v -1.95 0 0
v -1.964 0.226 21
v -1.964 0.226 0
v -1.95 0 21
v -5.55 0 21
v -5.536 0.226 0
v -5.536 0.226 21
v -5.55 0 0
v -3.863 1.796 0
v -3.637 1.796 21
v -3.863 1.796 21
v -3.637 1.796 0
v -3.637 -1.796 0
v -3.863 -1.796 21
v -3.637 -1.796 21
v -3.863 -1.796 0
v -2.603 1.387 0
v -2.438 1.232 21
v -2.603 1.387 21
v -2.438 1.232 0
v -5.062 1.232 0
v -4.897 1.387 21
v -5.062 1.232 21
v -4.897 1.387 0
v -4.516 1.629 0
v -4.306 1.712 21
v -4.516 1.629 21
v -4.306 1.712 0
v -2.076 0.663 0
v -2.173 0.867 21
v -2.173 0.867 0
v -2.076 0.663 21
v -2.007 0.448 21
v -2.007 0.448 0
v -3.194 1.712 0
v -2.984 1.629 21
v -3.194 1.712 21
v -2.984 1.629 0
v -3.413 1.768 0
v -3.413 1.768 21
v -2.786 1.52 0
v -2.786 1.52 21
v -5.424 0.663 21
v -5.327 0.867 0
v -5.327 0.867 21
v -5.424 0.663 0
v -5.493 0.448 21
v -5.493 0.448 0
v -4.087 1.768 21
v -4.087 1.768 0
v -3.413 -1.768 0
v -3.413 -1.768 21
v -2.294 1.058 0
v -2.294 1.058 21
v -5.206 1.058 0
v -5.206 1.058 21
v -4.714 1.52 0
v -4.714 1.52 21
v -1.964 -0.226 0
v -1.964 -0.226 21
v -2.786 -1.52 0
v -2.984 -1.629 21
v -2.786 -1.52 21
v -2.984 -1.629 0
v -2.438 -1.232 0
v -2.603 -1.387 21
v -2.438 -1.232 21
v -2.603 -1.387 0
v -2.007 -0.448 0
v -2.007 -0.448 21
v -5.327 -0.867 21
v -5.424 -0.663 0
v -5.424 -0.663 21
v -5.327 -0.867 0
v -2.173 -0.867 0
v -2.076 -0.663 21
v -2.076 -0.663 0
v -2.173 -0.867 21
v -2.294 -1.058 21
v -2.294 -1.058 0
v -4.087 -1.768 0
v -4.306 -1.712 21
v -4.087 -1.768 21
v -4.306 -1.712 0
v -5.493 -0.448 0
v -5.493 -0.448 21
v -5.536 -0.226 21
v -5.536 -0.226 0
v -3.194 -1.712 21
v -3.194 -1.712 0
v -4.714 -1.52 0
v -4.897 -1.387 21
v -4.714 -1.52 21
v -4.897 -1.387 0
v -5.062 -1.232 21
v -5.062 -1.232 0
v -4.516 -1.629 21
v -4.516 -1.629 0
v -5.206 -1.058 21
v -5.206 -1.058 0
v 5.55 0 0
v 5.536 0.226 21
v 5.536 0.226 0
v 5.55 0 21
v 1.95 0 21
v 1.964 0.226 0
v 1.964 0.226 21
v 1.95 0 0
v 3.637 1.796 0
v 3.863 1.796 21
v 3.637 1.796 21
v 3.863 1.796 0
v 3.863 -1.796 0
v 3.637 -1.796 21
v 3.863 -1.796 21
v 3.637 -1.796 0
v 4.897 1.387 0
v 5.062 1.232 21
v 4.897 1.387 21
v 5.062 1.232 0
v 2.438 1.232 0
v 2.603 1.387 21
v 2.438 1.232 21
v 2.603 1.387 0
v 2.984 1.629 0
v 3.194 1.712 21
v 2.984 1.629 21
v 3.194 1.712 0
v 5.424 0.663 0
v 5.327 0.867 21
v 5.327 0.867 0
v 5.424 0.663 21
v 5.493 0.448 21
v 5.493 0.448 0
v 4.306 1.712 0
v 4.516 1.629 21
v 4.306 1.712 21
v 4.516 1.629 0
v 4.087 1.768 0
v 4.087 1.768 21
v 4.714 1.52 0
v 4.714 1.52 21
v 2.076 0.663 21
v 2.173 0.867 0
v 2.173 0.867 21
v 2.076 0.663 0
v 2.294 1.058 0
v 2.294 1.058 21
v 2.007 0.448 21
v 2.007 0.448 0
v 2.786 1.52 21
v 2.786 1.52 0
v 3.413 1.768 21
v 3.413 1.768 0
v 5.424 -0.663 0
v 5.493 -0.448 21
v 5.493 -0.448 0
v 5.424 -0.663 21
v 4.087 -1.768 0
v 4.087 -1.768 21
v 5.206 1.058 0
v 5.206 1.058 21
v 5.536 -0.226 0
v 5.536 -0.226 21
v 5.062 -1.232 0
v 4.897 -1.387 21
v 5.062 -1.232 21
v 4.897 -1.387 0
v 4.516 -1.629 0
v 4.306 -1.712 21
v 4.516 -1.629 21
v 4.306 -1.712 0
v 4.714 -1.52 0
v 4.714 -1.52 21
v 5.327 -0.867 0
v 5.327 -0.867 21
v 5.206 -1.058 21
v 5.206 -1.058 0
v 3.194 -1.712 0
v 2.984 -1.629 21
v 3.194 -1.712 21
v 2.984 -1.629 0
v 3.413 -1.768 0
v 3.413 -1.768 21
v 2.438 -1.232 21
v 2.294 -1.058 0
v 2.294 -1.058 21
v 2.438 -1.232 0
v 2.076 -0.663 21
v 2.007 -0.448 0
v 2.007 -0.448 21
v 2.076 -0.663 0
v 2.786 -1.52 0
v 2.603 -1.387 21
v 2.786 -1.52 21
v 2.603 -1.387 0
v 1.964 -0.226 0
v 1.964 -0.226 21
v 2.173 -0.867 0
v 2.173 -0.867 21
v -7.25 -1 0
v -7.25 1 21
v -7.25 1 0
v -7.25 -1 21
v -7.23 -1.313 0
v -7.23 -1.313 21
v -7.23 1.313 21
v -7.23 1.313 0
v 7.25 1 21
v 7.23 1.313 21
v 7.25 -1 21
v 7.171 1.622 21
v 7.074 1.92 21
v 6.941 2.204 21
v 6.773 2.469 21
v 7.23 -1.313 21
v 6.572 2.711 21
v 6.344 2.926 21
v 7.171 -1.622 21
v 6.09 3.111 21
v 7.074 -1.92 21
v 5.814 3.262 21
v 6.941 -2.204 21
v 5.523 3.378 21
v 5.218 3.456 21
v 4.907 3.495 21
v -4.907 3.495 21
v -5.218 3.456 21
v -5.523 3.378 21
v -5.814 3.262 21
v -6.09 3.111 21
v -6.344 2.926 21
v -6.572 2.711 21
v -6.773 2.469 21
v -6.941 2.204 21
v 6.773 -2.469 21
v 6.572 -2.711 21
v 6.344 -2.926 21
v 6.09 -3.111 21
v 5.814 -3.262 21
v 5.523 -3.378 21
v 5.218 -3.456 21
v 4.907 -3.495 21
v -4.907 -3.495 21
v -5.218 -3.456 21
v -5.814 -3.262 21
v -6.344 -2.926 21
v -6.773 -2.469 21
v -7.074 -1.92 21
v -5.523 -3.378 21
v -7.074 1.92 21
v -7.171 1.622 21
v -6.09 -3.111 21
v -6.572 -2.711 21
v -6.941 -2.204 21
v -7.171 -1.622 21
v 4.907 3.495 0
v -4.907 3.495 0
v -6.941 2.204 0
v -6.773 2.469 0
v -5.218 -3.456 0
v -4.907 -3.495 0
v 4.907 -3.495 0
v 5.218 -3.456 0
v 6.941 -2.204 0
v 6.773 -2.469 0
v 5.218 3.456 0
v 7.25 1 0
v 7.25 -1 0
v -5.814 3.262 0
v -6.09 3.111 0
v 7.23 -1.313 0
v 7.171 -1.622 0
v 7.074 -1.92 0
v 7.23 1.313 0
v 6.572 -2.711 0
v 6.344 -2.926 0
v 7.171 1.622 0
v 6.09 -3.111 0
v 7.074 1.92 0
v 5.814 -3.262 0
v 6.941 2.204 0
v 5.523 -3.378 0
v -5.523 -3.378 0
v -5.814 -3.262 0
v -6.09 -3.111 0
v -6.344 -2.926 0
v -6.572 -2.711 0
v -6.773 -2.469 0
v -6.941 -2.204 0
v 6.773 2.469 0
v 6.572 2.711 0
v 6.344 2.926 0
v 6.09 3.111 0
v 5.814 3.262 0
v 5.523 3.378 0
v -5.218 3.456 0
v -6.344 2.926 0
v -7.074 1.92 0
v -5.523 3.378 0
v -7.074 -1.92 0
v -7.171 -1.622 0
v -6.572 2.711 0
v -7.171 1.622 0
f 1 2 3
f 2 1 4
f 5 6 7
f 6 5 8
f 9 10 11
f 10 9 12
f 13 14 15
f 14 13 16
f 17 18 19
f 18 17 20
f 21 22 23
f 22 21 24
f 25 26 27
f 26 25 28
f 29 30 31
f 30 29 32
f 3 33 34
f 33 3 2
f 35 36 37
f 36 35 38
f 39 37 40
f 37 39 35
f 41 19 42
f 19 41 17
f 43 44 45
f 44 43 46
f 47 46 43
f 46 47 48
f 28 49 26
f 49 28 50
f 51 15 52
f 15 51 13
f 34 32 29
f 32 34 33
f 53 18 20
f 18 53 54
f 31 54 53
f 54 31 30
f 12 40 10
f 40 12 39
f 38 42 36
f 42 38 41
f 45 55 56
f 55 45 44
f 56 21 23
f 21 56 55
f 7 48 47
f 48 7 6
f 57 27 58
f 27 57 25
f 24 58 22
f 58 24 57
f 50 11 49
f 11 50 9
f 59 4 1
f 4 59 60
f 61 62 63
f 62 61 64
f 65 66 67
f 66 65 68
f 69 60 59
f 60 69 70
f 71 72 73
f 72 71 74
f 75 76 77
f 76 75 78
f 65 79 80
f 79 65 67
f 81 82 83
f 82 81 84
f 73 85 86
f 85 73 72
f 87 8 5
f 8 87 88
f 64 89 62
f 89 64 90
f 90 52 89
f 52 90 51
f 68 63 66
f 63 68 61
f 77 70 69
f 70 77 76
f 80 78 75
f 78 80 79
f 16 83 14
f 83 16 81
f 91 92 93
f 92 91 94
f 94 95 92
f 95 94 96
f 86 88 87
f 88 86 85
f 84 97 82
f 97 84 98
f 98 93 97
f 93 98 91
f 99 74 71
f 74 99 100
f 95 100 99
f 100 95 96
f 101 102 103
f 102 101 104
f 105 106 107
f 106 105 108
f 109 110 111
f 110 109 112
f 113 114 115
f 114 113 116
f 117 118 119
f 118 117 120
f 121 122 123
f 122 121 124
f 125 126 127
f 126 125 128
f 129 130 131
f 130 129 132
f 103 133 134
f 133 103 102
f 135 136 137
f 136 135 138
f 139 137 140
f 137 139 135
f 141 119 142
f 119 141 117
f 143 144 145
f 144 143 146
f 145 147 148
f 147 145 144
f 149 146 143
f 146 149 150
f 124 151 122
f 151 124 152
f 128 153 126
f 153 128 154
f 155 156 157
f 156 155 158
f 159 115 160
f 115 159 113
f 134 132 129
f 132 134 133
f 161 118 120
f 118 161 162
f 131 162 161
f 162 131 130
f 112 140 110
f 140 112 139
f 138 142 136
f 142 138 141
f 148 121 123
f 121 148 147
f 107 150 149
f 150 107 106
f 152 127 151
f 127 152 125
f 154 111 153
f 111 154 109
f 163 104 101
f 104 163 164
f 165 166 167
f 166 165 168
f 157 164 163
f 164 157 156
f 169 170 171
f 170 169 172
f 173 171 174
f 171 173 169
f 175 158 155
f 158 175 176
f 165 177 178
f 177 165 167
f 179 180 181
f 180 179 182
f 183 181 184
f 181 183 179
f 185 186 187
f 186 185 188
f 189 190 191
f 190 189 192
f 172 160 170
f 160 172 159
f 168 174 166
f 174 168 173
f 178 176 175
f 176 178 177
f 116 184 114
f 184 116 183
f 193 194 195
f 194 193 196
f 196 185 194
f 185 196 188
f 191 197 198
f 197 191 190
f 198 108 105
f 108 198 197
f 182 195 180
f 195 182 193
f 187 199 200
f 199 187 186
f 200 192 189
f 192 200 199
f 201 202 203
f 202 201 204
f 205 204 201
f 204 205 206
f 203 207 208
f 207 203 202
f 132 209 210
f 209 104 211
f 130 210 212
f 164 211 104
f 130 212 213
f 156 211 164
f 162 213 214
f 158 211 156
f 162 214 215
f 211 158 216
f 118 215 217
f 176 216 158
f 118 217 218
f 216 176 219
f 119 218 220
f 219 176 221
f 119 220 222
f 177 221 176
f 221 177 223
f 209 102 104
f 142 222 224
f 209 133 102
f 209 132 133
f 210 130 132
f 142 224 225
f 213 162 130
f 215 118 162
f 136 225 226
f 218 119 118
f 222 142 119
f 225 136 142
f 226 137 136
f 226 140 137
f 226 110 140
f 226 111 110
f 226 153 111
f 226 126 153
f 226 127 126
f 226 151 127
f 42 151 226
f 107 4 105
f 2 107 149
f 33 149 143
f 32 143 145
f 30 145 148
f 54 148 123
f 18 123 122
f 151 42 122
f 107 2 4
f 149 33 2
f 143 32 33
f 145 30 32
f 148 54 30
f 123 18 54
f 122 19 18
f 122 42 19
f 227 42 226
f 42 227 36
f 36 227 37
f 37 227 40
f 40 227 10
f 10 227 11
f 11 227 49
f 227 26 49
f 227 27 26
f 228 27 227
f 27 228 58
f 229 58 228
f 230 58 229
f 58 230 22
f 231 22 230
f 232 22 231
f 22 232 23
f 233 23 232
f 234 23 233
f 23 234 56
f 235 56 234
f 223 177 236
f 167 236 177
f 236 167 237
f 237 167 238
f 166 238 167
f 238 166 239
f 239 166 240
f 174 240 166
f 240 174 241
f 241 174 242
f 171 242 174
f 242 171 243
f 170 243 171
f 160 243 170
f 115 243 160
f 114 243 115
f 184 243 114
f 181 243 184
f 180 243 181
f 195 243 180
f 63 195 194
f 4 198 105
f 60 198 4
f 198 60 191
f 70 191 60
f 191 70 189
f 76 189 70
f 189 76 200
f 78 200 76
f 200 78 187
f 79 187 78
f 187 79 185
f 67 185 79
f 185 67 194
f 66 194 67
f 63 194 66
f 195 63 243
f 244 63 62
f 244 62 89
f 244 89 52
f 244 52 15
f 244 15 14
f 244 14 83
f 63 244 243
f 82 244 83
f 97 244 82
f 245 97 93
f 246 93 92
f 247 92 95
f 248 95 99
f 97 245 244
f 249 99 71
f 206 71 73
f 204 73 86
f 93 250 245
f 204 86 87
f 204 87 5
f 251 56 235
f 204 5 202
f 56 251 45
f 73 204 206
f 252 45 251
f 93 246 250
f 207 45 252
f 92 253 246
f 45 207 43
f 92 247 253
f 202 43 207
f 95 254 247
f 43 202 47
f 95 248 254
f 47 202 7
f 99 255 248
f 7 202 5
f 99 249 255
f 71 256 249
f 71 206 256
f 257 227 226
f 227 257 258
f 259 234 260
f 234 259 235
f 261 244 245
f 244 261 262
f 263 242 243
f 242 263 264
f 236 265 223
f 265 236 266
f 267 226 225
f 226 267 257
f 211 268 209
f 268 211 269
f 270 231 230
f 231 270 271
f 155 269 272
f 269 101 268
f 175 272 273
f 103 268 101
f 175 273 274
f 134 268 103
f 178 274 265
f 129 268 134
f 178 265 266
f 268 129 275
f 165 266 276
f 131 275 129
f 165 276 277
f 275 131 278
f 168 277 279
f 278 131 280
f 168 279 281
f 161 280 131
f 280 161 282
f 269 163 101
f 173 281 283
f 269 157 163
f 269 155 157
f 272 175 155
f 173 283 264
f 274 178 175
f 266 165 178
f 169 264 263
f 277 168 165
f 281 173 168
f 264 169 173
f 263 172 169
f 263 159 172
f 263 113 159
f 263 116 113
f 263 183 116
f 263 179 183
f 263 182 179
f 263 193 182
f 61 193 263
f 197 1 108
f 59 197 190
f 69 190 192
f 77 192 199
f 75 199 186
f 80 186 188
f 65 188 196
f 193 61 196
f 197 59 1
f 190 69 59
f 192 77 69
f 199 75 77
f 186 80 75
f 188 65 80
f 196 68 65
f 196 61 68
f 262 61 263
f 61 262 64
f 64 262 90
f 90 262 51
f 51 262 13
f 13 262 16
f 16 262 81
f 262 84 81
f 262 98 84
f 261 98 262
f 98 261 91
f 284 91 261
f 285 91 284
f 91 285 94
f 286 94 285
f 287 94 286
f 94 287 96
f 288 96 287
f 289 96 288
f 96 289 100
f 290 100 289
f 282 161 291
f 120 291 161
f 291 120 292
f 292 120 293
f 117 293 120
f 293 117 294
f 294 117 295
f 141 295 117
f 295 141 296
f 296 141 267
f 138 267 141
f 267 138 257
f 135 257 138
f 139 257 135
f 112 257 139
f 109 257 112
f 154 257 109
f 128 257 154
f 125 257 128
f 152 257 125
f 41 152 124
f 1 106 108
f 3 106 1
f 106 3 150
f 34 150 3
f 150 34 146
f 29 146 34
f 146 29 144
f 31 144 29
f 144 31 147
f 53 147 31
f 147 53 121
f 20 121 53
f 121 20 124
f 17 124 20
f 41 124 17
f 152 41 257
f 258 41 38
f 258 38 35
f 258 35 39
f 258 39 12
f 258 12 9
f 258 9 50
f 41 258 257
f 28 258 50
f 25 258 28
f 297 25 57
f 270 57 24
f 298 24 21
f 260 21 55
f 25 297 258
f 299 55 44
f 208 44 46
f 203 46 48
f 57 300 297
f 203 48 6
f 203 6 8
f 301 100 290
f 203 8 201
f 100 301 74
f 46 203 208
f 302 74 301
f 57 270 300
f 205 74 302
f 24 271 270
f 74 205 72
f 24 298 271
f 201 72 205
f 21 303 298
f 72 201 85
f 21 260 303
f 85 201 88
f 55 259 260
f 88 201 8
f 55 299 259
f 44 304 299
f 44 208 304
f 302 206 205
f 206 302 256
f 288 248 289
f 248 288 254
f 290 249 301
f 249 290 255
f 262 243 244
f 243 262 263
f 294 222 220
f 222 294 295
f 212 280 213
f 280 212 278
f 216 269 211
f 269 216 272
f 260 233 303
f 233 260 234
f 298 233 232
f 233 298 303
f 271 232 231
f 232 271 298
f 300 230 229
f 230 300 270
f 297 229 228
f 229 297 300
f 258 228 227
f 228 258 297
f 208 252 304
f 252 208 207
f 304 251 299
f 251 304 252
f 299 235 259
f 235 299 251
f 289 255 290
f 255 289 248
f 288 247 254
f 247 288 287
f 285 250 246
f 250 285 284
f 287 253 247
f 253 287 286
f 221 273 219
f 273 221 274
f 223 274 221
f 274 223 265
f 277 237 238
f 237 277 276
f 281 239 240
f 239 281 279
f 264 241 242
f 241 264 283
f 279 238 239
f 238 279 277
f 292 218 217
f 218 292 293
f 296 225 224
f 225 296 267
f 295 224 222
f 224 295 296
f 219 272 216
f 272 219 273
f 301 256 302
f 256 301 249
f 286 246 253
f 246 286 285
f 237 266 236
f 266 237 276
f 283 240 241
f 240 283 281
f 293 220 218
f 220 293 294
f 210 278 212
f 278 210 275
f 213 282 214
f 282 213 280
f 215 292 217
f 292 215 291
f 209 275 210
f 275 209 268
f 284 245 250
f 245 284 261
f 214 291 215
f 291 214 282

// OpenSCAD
$fn = 50;


difference() {
	union() {
		translate(v = [0, 0, 0]) {
			rotate(a = [0, 0, 0]) {
				hull() {
					translate(v = [-4.7500000000, 1.0000000000, 0]) {
						rotate(a = [0, 0, 0]) {
							translate(v = [0, 0, 0]) {
								rotate(a = [0, 0, 0]) {
									cylinder(h = 21, r = 2.5000000000);
								}
							}
						}
					}
					translate(v = [4.7500000000, 1.0000000000, 0]) {
						rotate(a = [0, 0, 0]) {
							translate(v = [0, 0, 0]) {
								rotate(a = [0, 0, 0]) {
									cylinder(h = 21, r = 2.5000000000);
								}
							}
						}
					}
					translate(v = [-4.7500000000, -1.0000000000, 0]) {
						rotate(a = [0, 0, 0]) {
							translate(v = [0, 0, 0]) {
								rotate(a = [0, 0, 0]) {
									cylinder(h = 21, r = 2.5000000000);
								}
							}
						}
					}
					translate(v = [4.7500000000, -1.0000000000, 0]) {
						rotate(a = [0, 0, 0]) {
							translate(v = [0, 0, 0]) {
								rotate(a = [0, 0, 0]) {
									cylinder(h = 21, r = 2.5000000000);
								}
							}
						}
					}
				}
			}
		}
	}
	union() {
		translate(v = [-3.7500000000, 0.0000000000, 0]) {
			rotate(a = [0, 0, 0]) {
				translate(v = [0, 0, -50]) {
					rotate(a = [0, 0, 0]) {
						cylinder(h = 100, r = 1.8000000000);
					}
				}
			}
		}
		translate(v = [3.7500000000, 0.0000000000, 0]) {
			rotate(a = [0, 0, 0]) {
				translate(v = [0, 0, -50]) {
					rotate(a = [0, 0, 0]) {
						cylinder(h = 100, r = 1.8000000000);
					}
				}
			}
		}
	}
}
